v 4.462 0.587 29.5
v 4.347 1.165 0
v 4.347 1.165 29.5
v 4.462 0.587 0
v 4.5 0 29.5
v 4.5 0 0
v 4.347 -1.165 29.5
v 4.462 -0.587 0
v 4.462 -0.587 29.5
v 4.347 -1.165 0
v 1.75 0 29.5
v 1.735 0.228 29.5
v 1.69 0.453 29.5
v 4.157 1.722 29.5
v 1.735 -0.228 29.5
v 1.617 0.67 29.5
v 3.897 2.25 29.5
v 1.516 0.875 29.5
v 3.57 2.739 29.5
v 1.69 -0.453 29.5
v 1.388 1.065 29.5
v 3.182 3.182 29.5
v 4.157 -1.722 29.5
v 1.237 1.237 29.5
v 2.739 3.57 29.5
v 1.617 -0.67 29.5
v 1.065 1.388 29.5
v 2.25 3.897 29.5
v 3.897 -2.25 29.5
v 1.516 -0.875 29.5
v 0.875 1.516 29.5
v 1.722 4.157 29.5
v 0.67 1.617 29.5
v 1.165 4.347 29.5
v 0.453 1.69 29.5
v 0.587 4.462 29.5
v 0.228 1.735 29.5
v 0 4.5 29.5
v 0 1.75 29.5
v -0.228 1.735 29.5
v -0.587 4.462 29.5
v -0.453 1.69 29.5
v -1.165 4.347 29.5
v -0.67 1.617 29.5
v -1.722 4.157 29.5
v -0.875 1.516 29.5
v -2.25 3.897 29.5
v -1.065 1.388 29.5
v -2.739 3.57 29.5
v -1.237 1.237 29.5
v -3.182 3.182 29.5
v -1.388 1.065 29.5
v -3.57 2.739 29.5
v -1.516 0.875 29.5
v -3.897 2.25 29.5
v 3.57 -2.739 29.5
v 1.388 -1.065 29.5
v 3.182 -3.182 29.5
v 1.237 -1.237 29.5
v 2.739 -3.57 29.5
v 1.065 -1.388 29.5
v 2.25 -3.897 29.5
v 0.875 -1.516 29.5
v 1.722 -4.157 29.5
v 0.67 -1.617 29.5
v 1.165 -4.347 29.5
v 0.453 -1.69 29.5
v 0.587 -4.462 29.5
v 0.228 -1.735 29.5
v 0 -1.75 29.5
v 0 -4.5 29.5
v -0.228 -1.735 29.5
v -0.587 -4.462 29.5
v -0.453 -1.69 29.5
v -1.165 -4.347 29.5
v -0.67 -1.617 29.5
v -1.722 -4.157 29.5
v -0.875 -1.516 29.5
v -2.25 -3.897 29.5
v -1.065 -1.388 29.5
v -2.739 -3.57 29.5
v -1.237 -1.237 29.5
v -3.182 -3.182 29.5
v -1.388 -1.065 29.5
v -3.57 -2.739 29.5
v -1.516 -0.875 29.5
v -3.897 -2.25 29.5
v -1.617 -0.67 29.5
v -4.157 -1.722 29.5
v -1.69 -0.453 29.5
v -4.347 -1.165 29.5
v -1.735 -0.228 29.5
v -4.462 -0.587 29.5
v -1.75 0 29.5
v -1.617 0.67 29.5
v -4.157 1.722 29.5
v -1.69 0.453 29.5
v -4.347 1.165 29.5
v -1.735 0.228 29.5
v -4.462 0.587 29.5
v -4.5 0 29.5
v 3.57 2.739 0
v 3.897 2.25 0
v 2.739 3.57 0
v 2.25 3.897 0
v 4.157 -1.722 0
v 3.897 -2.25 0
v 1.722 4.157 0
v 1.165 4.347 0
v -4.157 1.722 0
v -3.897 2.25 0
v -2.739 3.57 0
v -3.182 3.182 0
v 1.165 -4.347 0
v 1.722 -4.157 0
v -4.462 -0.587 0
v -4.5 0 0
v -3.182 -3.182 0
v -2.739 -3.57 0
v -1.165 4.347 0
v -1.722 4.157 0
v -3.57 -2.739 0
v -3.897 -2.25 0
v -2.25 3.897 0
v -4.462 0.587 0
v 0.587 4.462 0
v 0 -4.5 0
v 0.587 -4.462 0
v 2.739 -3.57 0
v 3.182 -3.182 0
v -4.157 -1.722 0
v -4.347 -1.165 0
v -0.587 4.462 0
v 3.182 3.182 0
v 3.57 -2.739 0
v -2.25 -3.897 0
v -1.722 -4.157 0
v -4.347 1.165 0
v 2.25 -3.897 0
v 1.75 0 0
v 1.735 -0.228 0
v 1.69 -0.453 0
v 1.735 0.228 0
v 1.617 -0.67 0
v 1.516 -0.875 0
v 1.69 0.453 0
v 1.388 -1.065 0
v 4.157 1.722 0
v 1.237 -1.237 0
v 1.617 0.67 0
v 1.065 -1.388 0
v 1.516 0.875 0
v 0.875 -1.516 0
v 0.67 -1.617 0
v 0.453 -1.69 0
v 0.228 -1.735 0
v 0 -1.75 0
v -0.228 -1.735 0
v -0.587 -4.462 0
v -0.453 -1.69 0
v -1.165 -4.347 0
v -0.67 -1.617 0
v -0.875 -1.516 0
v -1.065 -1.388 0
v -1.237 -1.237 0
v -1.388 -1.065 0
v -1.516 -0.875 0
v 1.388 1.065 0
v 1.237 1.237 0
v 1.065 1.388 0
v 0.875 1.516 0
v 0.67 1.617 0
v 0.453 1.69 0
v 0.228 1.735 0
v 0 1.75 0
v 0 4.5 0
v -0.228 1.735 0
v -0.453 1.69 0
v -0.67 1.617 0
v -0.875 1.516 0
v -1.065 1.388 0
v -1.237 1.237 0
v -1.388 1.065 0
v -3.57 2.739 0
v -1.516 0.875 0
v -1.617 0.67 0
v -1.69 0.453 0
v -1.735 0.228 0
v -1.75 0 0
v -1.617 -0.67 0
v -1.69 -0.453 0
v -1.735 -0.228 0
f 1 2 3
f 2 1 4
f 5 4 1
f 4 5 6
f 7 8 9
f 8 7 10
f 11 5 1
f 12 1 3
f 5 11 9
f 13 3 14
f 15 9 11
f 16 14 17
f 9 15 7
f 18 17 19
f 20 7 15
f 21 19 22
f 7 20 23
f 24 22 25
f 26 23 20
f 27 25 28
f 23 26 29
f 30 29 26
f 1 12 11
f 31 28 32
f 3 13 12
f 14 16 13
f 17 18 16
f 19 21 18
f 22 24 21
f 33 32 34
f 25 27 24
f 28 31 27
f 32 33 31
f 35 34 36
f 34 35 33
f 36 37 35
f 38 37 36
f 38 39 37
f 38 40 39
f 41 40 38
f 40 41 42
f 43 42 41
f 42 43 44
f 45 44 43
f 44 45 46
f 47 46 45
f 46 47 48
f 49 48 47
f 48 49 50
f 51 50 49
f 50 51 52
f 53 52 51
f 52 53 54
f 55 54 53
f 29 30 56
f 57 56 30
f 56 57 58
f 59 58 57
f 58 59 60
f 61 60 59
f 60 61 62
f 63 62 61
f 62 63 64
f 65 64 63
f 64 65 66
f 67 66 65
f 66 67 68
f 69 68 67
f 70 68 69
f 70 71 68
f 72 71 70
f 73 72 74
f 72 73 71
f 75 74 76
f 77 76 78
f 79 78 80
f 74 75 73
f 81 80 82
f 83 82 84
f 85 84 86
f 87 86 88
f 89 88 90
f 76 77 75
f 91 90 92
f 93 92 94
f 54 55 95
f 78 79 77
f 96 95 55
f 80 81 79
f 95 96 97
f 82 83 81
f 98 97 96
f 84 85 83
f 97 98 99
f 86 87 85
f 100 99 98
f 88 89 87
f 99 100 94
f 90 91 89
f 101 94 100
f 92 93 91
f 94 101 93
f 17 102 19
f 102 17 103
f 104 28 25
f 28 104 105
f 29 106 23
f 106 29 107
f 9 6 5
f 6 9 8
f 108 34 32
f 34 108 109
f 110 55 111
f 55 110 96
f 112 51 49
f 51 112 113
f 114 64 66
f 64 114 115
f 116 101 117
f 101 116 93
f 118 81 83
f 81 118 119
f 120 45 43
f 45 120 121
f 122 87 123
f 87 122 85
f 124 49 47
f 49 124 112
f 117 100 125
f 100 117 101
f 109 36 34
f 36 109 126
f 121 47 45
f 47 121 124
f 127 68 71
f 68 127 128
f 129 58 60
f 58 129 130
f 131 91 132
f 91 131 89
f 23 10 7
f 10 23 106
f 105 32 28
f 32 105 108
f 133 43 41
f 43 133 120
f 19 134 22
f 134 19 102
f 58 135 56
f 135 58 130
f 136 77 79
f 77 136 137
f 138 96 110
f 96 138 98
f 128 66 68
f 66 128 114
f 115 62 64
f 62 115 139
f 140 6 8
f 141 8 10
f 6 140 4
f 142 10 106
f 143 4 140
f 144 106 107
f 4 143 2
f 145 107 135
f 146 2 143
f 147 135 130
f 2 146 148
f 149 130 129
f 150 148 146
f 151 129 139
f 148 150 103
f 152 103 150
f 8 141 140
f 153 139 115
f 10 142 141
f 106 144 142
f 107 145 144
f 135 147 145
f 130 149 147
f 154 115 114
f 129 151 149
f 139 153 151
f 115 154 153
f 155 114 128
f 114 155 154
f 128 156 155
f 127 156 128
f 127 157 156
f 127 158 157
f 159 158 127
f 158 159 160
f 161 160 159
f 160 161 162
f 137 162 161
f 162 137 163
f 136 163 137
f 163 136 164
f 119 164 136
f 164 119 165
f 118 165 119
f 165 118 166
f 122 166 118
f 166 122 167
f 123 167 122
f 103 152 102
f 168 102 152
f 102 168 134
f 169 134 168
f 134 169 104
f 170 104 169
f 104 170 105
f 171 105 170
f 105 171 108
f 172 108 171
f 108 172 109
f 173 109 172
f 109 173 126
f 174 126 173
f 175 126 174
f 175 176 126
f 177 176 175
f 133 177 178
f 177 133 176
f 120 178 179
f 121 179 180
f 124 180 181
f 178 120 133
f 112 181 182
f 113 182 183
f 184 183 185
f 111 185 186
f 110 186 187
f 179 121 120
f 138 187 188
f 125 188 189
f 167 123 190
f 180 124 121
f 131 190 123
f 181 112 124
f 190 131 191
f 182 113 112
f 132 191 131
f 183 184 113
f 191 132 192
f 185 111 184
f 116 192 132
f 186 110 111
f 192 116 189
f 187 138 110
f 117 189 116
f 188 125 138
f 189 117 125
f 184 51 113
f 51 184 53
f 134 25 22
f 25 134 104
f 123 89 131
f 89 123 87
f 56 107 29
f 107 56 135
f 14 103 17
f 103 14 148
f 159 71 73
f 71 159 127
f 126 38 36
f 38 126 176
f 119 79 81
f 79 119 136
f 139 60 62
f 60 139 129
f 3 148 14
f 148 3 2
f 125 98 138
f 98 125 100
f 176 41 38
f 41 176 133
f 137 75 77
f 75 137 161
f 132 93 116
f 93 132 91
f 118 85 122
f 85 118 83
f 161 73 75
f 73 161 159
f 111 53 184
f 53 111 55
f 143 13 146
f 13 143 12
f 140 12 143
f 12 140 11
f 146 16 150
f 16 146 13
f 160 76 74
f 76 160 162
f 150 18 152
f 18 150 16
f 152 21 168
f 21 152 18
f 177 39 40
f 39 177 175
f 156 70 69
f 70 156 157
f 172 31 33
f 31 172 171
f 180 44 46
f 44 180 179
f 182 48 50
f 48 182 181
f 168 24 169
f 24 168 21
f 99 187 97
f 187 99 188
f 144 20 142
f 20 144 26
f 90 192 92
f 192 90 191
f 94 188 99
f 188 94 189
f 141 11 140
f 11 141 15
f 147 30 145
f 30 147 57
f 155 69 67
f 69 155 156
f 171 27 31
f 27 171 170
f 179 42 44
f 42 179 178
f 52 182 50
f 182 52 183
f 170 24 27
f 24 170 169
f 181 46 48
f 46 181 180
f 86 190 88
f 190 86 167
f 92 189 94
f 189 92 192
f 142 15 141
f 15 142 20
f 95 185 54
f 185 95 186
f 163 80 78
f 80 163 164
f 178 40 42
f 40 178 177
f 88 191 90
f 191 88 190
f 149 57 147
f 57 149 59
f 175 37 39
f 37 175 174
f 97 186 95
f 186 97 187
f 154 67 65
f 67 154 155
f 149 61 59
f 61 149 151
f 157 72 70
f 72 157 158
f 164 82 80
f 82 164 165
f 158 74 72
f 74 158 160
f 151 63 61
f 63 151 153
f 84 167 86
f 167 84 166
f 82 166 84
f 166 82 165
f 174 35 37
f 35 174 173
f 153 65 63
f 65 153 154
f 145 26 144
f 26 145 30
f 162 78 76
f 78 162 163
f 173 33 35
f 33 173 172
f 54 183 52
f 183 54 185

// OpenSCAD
// file: parameters.scad
// =============================================================================
// Gen-CD — nightly 2026-10-14 (physics_scorer, honest magpylib watts)
// Push past Gen-CA on the same arc-nested one-plate architecture: poles out to R86, bobbins r65–105 × 4.95 mm copper. Full-resolution scorer picks this window at ≈8.56 W (386 m, at the wire budget) with a Ø229 stator that still packs; thinner-copper R86 tips (r65–107 × 4.65) need Ø232+ and would not pack. Same 8 bolt-on arcs/rotor + D-flat hub + open-centre stator + in-place bobbin bases that unlocked Gen-CA.
// Clocking 0 deg (magnets N facing S) + D-flat keyed bore + index notch + flip-symmetric hole map.
// Windable 2-piece bobbin; turns = physics_scorer turns_fit; copper only between flanges.
// Steel back-iron: 2× Ø198 × 4.76 mm (3/16") mild-steel discs (steel_backiron_disc.dxf); magnets sit ON the steel
// (through-pockets) -> score with --back-iron. Night 2026-10-14.
// =============================================================================
topology            = "dual_rotor";

// --- Wire / winding (physics_scorer winding-fit) -------------------------------
wire_awg            = 26;
wire_od             = 0.45;     // insulated OD mm (bare 0.405)
fill_realistic      = 0.65;     // insulated-wire area / window (DENSE layered wind with a jig; scorer cap 0.65)
turns               = 370;       // = physics_scorer turns_fit (do NOT raise)
coil_former_type    = "bobbin";
coil_core_inset     = 18.31;     // radial copper build: hub = copper boundary inset by this
wind_build_axial    = 0.0;      // nothing proud of the flanges
wind_build_radial   = 0.0;

// --- Bobbin (base + lid) ---------------------------------------------------------
coil_id_r           = 65.00;    // copper boundary sector
coil_od_r           = 105.00;
span_deg            = 26.91;    // = pitch - 2*asin((wall+0.85)/coil_id_r) -> >=1.2 mm stator web
former_web          = 4.95;     // copper height between flanges (TALL copper: steel keeps Bz up)
flange_t            = 0.80;     // >= 0.8 mm FDM wall rule (tall winds push on the flanges)
wall                = 0.80;     // flange lip beyond copper
former_bare_h       = former_web + 2 * flange_t;
coil_envelope_h     = former_bare_h + 2 * wind_build_axial;
tab_w               = 7.0;
tab_len             = 7.0;
tab_h               = former_bare_h / 2;
pin_d               = 1.9;      // 1.75 mm filament locating pin
coil_mount_r        = coil_od_r + 0.2 + 4.0;
lead_y              = 1.6;
lead_slot_w         = 0.9;
lead_groove_d       = 0.6;

// --- Gap -------------------------------------------------------------------------
run_clear           = 0.50;     // rotor face -> flange
gap_spacer_h        = run_clear + wind_build_axial;
m2m                 = coil_envelope_h + 2 * run_clear;   // rotor face to rotor face (= gap_sleeve length)

// --- Stator ----------------------------------------------------------------------
coil_stations       = 12;
bay_clear           = 0.35;     // 0.35 mm: bobbin BASES print IN PLACE inside the stator bays (print-in-place gap), then pop out
stator_thick        = former_bare_h;                        // bobbins flush both faces
stator_od           = 229.0;
shaft_clear_stator  = 14.0;     // stator is static; gap sleeve OD 12 spins inside
stator_ir           = 59.85;    // ANNULAR stator: open centre (nested one-plate pack); inner rim 4.0 mm

// --- Rotor(s) --------------------------------------------------------------------
magnet_Br           = 1.43;     // N52
magnet_d_large      = 20.0;
magnet_h_large      = 5.0;      // one O20x5 per pocket
magnet_h_small      = 5.0;      // unused: no O5 pockets in this kit
halbach_magnetisation = "none";  // NO O5 assist magnets in this kit (scan: they lower the 4-pole score)
rotor_b_same_axis   = true;     // same-index magnets share one axis: N faces S across the gap
large_pocket_d      = 20.3;
small_pocket_d      = 5.3;
pocket_h            = 5.00;     // THROUGH the carrier: magnet back face sits on the steel disc (FLUSH seat: carrier = magnet height, magnet face level with the rotor face)
large_n             = 8;
R_large             = 86.0;
small_r_list        = [];       // no O5 pockets
carrier_od          = 198.0;
ring_ir             = 72.85;    // RING rotor: PLA magnet ring r ring_ir..carrier_od/2 (steel disc = structural rotor)
hub_flange_od       = 74.0;     // separate rotor_hub flange (inside the ring, flush with the ring face)
csk_d               = 6.6;      // M3 countersunk head pocket (ISO 10642 head 6.0 nominal) on the stator face
csk_depth           = 1.55;     // = (csk_d - m3_clear) / 2: 90 deg cone; head sits 0.3 mm below the face
n_seg               = 8;        // magnet-carrier ARCS per rotor (segmented carrier)
seg_deg             = 360 / n_seg;
seg_start           = -22.5;   // arc edge angle (between pocket 0 and its clamp bolt)
seg_kerf_deg        = 0.4;      // gap between neighbouring arcs on the steel
carrier_thick       = pocket_h;
hub_h               = 12.0;     // > steel_t + insert: radial set-screw clears the steel
hub_od              = 24.0;     // slim hub so the M4 brace rods fit at R~18 inside the coil ring
hub_insert_d        = 4.0;      // M3 heat-set insert, radial, bears on the D-flat
rotor_b_offset_deg  = 0.0;      // CLOCKING: magnets directly opposite
shaft_key           = "dflat";
dflat_depth         = 0.5;      // 8 mm shaft with 0.5 mm flat (7.5 across flat)
index_notch_d       = 3.0;

// --- Steel back-iron (buyable laser-cut) -------------------------------------------
steel_t             = 4.76;      // mild steel thickness (image method ignores it; sized from steel_flux.py so the return path stays well below saturation)
steel_center_hole   = 26.0;     // slips over the rotor hub (OD 24)
steel_od            = carrier_od;   // steel disc OD = rotor carrier OD

// --- Modular MAX interface ----------------------------------------------------------
shaft_bore          = 8.35;
dflat_x             = 4.0 - dflat_depth + (shaft_bore - 8.0) / 2;
bearing_d           = 21.85;
bearing_h           = 7.2;
m3_clear            = 3.5;
bolt_r_inner        = 30.0;     // M3 steel-disc clamp bolts (inside the magnet ring)
bolt_n_inner        = 4;
bolt_inner_angles   = [0, 90, 180, 270];
bolt_r_outer        = 86.0;     // second M3 steel-disc clamp ring
bolt_outer_angles   = [22.5, 67.5, 112.5, 157.5, 202.5, 247.5, 292.5, 337.5];
flange_bolt_r       = 109.5;     // frame rods: OUTSIDE the rotor OD (rotors spin inside them)
flange_bolt_n       = 4;
flange_bolt_offset  = 45.00;    // between coil stations -> never cuts a lead groove/tab
brace_r             = 18.0;
brace_d             = 4.3;      // temporary M4 jack rods (assembly only)
brace_n             = 4;
brace_angles        = [45, 135, 225, 315];          // flip-symmetric

spacer_pad_od       = 14.0;
spacer_pad_id       = m3_clear;
endbell_od          = 229.0;
endbell_thick       = 8.0;
endbell_shaft_clear = 10.0;
collar_h            = 10.0;
standoff_od         = 9.0;
frame_standoff_h    = run_clear + carrier_thick + hub_h + collar_h + 2.0;
sleeve_od           = 12.0;
plate_max_mm        = 410;

$fn = 64;
// main file
// Gen-CD — frame standoff tube between stator and an endbell, on each M3 frame rod (outside rotor OD).
// Print x4. Height = frame_standoff_h (rotor + steel + hub + collar + running clearance).
include <parameters.scad>;
$fn = 48;
difference() {
    cylinder(d=standoff_od, h=frame_standoff_h);
    translate([0, 0, -0.1]) cylinder(d=m3_clear, h=frame_standoff_h + 0.2);
}
